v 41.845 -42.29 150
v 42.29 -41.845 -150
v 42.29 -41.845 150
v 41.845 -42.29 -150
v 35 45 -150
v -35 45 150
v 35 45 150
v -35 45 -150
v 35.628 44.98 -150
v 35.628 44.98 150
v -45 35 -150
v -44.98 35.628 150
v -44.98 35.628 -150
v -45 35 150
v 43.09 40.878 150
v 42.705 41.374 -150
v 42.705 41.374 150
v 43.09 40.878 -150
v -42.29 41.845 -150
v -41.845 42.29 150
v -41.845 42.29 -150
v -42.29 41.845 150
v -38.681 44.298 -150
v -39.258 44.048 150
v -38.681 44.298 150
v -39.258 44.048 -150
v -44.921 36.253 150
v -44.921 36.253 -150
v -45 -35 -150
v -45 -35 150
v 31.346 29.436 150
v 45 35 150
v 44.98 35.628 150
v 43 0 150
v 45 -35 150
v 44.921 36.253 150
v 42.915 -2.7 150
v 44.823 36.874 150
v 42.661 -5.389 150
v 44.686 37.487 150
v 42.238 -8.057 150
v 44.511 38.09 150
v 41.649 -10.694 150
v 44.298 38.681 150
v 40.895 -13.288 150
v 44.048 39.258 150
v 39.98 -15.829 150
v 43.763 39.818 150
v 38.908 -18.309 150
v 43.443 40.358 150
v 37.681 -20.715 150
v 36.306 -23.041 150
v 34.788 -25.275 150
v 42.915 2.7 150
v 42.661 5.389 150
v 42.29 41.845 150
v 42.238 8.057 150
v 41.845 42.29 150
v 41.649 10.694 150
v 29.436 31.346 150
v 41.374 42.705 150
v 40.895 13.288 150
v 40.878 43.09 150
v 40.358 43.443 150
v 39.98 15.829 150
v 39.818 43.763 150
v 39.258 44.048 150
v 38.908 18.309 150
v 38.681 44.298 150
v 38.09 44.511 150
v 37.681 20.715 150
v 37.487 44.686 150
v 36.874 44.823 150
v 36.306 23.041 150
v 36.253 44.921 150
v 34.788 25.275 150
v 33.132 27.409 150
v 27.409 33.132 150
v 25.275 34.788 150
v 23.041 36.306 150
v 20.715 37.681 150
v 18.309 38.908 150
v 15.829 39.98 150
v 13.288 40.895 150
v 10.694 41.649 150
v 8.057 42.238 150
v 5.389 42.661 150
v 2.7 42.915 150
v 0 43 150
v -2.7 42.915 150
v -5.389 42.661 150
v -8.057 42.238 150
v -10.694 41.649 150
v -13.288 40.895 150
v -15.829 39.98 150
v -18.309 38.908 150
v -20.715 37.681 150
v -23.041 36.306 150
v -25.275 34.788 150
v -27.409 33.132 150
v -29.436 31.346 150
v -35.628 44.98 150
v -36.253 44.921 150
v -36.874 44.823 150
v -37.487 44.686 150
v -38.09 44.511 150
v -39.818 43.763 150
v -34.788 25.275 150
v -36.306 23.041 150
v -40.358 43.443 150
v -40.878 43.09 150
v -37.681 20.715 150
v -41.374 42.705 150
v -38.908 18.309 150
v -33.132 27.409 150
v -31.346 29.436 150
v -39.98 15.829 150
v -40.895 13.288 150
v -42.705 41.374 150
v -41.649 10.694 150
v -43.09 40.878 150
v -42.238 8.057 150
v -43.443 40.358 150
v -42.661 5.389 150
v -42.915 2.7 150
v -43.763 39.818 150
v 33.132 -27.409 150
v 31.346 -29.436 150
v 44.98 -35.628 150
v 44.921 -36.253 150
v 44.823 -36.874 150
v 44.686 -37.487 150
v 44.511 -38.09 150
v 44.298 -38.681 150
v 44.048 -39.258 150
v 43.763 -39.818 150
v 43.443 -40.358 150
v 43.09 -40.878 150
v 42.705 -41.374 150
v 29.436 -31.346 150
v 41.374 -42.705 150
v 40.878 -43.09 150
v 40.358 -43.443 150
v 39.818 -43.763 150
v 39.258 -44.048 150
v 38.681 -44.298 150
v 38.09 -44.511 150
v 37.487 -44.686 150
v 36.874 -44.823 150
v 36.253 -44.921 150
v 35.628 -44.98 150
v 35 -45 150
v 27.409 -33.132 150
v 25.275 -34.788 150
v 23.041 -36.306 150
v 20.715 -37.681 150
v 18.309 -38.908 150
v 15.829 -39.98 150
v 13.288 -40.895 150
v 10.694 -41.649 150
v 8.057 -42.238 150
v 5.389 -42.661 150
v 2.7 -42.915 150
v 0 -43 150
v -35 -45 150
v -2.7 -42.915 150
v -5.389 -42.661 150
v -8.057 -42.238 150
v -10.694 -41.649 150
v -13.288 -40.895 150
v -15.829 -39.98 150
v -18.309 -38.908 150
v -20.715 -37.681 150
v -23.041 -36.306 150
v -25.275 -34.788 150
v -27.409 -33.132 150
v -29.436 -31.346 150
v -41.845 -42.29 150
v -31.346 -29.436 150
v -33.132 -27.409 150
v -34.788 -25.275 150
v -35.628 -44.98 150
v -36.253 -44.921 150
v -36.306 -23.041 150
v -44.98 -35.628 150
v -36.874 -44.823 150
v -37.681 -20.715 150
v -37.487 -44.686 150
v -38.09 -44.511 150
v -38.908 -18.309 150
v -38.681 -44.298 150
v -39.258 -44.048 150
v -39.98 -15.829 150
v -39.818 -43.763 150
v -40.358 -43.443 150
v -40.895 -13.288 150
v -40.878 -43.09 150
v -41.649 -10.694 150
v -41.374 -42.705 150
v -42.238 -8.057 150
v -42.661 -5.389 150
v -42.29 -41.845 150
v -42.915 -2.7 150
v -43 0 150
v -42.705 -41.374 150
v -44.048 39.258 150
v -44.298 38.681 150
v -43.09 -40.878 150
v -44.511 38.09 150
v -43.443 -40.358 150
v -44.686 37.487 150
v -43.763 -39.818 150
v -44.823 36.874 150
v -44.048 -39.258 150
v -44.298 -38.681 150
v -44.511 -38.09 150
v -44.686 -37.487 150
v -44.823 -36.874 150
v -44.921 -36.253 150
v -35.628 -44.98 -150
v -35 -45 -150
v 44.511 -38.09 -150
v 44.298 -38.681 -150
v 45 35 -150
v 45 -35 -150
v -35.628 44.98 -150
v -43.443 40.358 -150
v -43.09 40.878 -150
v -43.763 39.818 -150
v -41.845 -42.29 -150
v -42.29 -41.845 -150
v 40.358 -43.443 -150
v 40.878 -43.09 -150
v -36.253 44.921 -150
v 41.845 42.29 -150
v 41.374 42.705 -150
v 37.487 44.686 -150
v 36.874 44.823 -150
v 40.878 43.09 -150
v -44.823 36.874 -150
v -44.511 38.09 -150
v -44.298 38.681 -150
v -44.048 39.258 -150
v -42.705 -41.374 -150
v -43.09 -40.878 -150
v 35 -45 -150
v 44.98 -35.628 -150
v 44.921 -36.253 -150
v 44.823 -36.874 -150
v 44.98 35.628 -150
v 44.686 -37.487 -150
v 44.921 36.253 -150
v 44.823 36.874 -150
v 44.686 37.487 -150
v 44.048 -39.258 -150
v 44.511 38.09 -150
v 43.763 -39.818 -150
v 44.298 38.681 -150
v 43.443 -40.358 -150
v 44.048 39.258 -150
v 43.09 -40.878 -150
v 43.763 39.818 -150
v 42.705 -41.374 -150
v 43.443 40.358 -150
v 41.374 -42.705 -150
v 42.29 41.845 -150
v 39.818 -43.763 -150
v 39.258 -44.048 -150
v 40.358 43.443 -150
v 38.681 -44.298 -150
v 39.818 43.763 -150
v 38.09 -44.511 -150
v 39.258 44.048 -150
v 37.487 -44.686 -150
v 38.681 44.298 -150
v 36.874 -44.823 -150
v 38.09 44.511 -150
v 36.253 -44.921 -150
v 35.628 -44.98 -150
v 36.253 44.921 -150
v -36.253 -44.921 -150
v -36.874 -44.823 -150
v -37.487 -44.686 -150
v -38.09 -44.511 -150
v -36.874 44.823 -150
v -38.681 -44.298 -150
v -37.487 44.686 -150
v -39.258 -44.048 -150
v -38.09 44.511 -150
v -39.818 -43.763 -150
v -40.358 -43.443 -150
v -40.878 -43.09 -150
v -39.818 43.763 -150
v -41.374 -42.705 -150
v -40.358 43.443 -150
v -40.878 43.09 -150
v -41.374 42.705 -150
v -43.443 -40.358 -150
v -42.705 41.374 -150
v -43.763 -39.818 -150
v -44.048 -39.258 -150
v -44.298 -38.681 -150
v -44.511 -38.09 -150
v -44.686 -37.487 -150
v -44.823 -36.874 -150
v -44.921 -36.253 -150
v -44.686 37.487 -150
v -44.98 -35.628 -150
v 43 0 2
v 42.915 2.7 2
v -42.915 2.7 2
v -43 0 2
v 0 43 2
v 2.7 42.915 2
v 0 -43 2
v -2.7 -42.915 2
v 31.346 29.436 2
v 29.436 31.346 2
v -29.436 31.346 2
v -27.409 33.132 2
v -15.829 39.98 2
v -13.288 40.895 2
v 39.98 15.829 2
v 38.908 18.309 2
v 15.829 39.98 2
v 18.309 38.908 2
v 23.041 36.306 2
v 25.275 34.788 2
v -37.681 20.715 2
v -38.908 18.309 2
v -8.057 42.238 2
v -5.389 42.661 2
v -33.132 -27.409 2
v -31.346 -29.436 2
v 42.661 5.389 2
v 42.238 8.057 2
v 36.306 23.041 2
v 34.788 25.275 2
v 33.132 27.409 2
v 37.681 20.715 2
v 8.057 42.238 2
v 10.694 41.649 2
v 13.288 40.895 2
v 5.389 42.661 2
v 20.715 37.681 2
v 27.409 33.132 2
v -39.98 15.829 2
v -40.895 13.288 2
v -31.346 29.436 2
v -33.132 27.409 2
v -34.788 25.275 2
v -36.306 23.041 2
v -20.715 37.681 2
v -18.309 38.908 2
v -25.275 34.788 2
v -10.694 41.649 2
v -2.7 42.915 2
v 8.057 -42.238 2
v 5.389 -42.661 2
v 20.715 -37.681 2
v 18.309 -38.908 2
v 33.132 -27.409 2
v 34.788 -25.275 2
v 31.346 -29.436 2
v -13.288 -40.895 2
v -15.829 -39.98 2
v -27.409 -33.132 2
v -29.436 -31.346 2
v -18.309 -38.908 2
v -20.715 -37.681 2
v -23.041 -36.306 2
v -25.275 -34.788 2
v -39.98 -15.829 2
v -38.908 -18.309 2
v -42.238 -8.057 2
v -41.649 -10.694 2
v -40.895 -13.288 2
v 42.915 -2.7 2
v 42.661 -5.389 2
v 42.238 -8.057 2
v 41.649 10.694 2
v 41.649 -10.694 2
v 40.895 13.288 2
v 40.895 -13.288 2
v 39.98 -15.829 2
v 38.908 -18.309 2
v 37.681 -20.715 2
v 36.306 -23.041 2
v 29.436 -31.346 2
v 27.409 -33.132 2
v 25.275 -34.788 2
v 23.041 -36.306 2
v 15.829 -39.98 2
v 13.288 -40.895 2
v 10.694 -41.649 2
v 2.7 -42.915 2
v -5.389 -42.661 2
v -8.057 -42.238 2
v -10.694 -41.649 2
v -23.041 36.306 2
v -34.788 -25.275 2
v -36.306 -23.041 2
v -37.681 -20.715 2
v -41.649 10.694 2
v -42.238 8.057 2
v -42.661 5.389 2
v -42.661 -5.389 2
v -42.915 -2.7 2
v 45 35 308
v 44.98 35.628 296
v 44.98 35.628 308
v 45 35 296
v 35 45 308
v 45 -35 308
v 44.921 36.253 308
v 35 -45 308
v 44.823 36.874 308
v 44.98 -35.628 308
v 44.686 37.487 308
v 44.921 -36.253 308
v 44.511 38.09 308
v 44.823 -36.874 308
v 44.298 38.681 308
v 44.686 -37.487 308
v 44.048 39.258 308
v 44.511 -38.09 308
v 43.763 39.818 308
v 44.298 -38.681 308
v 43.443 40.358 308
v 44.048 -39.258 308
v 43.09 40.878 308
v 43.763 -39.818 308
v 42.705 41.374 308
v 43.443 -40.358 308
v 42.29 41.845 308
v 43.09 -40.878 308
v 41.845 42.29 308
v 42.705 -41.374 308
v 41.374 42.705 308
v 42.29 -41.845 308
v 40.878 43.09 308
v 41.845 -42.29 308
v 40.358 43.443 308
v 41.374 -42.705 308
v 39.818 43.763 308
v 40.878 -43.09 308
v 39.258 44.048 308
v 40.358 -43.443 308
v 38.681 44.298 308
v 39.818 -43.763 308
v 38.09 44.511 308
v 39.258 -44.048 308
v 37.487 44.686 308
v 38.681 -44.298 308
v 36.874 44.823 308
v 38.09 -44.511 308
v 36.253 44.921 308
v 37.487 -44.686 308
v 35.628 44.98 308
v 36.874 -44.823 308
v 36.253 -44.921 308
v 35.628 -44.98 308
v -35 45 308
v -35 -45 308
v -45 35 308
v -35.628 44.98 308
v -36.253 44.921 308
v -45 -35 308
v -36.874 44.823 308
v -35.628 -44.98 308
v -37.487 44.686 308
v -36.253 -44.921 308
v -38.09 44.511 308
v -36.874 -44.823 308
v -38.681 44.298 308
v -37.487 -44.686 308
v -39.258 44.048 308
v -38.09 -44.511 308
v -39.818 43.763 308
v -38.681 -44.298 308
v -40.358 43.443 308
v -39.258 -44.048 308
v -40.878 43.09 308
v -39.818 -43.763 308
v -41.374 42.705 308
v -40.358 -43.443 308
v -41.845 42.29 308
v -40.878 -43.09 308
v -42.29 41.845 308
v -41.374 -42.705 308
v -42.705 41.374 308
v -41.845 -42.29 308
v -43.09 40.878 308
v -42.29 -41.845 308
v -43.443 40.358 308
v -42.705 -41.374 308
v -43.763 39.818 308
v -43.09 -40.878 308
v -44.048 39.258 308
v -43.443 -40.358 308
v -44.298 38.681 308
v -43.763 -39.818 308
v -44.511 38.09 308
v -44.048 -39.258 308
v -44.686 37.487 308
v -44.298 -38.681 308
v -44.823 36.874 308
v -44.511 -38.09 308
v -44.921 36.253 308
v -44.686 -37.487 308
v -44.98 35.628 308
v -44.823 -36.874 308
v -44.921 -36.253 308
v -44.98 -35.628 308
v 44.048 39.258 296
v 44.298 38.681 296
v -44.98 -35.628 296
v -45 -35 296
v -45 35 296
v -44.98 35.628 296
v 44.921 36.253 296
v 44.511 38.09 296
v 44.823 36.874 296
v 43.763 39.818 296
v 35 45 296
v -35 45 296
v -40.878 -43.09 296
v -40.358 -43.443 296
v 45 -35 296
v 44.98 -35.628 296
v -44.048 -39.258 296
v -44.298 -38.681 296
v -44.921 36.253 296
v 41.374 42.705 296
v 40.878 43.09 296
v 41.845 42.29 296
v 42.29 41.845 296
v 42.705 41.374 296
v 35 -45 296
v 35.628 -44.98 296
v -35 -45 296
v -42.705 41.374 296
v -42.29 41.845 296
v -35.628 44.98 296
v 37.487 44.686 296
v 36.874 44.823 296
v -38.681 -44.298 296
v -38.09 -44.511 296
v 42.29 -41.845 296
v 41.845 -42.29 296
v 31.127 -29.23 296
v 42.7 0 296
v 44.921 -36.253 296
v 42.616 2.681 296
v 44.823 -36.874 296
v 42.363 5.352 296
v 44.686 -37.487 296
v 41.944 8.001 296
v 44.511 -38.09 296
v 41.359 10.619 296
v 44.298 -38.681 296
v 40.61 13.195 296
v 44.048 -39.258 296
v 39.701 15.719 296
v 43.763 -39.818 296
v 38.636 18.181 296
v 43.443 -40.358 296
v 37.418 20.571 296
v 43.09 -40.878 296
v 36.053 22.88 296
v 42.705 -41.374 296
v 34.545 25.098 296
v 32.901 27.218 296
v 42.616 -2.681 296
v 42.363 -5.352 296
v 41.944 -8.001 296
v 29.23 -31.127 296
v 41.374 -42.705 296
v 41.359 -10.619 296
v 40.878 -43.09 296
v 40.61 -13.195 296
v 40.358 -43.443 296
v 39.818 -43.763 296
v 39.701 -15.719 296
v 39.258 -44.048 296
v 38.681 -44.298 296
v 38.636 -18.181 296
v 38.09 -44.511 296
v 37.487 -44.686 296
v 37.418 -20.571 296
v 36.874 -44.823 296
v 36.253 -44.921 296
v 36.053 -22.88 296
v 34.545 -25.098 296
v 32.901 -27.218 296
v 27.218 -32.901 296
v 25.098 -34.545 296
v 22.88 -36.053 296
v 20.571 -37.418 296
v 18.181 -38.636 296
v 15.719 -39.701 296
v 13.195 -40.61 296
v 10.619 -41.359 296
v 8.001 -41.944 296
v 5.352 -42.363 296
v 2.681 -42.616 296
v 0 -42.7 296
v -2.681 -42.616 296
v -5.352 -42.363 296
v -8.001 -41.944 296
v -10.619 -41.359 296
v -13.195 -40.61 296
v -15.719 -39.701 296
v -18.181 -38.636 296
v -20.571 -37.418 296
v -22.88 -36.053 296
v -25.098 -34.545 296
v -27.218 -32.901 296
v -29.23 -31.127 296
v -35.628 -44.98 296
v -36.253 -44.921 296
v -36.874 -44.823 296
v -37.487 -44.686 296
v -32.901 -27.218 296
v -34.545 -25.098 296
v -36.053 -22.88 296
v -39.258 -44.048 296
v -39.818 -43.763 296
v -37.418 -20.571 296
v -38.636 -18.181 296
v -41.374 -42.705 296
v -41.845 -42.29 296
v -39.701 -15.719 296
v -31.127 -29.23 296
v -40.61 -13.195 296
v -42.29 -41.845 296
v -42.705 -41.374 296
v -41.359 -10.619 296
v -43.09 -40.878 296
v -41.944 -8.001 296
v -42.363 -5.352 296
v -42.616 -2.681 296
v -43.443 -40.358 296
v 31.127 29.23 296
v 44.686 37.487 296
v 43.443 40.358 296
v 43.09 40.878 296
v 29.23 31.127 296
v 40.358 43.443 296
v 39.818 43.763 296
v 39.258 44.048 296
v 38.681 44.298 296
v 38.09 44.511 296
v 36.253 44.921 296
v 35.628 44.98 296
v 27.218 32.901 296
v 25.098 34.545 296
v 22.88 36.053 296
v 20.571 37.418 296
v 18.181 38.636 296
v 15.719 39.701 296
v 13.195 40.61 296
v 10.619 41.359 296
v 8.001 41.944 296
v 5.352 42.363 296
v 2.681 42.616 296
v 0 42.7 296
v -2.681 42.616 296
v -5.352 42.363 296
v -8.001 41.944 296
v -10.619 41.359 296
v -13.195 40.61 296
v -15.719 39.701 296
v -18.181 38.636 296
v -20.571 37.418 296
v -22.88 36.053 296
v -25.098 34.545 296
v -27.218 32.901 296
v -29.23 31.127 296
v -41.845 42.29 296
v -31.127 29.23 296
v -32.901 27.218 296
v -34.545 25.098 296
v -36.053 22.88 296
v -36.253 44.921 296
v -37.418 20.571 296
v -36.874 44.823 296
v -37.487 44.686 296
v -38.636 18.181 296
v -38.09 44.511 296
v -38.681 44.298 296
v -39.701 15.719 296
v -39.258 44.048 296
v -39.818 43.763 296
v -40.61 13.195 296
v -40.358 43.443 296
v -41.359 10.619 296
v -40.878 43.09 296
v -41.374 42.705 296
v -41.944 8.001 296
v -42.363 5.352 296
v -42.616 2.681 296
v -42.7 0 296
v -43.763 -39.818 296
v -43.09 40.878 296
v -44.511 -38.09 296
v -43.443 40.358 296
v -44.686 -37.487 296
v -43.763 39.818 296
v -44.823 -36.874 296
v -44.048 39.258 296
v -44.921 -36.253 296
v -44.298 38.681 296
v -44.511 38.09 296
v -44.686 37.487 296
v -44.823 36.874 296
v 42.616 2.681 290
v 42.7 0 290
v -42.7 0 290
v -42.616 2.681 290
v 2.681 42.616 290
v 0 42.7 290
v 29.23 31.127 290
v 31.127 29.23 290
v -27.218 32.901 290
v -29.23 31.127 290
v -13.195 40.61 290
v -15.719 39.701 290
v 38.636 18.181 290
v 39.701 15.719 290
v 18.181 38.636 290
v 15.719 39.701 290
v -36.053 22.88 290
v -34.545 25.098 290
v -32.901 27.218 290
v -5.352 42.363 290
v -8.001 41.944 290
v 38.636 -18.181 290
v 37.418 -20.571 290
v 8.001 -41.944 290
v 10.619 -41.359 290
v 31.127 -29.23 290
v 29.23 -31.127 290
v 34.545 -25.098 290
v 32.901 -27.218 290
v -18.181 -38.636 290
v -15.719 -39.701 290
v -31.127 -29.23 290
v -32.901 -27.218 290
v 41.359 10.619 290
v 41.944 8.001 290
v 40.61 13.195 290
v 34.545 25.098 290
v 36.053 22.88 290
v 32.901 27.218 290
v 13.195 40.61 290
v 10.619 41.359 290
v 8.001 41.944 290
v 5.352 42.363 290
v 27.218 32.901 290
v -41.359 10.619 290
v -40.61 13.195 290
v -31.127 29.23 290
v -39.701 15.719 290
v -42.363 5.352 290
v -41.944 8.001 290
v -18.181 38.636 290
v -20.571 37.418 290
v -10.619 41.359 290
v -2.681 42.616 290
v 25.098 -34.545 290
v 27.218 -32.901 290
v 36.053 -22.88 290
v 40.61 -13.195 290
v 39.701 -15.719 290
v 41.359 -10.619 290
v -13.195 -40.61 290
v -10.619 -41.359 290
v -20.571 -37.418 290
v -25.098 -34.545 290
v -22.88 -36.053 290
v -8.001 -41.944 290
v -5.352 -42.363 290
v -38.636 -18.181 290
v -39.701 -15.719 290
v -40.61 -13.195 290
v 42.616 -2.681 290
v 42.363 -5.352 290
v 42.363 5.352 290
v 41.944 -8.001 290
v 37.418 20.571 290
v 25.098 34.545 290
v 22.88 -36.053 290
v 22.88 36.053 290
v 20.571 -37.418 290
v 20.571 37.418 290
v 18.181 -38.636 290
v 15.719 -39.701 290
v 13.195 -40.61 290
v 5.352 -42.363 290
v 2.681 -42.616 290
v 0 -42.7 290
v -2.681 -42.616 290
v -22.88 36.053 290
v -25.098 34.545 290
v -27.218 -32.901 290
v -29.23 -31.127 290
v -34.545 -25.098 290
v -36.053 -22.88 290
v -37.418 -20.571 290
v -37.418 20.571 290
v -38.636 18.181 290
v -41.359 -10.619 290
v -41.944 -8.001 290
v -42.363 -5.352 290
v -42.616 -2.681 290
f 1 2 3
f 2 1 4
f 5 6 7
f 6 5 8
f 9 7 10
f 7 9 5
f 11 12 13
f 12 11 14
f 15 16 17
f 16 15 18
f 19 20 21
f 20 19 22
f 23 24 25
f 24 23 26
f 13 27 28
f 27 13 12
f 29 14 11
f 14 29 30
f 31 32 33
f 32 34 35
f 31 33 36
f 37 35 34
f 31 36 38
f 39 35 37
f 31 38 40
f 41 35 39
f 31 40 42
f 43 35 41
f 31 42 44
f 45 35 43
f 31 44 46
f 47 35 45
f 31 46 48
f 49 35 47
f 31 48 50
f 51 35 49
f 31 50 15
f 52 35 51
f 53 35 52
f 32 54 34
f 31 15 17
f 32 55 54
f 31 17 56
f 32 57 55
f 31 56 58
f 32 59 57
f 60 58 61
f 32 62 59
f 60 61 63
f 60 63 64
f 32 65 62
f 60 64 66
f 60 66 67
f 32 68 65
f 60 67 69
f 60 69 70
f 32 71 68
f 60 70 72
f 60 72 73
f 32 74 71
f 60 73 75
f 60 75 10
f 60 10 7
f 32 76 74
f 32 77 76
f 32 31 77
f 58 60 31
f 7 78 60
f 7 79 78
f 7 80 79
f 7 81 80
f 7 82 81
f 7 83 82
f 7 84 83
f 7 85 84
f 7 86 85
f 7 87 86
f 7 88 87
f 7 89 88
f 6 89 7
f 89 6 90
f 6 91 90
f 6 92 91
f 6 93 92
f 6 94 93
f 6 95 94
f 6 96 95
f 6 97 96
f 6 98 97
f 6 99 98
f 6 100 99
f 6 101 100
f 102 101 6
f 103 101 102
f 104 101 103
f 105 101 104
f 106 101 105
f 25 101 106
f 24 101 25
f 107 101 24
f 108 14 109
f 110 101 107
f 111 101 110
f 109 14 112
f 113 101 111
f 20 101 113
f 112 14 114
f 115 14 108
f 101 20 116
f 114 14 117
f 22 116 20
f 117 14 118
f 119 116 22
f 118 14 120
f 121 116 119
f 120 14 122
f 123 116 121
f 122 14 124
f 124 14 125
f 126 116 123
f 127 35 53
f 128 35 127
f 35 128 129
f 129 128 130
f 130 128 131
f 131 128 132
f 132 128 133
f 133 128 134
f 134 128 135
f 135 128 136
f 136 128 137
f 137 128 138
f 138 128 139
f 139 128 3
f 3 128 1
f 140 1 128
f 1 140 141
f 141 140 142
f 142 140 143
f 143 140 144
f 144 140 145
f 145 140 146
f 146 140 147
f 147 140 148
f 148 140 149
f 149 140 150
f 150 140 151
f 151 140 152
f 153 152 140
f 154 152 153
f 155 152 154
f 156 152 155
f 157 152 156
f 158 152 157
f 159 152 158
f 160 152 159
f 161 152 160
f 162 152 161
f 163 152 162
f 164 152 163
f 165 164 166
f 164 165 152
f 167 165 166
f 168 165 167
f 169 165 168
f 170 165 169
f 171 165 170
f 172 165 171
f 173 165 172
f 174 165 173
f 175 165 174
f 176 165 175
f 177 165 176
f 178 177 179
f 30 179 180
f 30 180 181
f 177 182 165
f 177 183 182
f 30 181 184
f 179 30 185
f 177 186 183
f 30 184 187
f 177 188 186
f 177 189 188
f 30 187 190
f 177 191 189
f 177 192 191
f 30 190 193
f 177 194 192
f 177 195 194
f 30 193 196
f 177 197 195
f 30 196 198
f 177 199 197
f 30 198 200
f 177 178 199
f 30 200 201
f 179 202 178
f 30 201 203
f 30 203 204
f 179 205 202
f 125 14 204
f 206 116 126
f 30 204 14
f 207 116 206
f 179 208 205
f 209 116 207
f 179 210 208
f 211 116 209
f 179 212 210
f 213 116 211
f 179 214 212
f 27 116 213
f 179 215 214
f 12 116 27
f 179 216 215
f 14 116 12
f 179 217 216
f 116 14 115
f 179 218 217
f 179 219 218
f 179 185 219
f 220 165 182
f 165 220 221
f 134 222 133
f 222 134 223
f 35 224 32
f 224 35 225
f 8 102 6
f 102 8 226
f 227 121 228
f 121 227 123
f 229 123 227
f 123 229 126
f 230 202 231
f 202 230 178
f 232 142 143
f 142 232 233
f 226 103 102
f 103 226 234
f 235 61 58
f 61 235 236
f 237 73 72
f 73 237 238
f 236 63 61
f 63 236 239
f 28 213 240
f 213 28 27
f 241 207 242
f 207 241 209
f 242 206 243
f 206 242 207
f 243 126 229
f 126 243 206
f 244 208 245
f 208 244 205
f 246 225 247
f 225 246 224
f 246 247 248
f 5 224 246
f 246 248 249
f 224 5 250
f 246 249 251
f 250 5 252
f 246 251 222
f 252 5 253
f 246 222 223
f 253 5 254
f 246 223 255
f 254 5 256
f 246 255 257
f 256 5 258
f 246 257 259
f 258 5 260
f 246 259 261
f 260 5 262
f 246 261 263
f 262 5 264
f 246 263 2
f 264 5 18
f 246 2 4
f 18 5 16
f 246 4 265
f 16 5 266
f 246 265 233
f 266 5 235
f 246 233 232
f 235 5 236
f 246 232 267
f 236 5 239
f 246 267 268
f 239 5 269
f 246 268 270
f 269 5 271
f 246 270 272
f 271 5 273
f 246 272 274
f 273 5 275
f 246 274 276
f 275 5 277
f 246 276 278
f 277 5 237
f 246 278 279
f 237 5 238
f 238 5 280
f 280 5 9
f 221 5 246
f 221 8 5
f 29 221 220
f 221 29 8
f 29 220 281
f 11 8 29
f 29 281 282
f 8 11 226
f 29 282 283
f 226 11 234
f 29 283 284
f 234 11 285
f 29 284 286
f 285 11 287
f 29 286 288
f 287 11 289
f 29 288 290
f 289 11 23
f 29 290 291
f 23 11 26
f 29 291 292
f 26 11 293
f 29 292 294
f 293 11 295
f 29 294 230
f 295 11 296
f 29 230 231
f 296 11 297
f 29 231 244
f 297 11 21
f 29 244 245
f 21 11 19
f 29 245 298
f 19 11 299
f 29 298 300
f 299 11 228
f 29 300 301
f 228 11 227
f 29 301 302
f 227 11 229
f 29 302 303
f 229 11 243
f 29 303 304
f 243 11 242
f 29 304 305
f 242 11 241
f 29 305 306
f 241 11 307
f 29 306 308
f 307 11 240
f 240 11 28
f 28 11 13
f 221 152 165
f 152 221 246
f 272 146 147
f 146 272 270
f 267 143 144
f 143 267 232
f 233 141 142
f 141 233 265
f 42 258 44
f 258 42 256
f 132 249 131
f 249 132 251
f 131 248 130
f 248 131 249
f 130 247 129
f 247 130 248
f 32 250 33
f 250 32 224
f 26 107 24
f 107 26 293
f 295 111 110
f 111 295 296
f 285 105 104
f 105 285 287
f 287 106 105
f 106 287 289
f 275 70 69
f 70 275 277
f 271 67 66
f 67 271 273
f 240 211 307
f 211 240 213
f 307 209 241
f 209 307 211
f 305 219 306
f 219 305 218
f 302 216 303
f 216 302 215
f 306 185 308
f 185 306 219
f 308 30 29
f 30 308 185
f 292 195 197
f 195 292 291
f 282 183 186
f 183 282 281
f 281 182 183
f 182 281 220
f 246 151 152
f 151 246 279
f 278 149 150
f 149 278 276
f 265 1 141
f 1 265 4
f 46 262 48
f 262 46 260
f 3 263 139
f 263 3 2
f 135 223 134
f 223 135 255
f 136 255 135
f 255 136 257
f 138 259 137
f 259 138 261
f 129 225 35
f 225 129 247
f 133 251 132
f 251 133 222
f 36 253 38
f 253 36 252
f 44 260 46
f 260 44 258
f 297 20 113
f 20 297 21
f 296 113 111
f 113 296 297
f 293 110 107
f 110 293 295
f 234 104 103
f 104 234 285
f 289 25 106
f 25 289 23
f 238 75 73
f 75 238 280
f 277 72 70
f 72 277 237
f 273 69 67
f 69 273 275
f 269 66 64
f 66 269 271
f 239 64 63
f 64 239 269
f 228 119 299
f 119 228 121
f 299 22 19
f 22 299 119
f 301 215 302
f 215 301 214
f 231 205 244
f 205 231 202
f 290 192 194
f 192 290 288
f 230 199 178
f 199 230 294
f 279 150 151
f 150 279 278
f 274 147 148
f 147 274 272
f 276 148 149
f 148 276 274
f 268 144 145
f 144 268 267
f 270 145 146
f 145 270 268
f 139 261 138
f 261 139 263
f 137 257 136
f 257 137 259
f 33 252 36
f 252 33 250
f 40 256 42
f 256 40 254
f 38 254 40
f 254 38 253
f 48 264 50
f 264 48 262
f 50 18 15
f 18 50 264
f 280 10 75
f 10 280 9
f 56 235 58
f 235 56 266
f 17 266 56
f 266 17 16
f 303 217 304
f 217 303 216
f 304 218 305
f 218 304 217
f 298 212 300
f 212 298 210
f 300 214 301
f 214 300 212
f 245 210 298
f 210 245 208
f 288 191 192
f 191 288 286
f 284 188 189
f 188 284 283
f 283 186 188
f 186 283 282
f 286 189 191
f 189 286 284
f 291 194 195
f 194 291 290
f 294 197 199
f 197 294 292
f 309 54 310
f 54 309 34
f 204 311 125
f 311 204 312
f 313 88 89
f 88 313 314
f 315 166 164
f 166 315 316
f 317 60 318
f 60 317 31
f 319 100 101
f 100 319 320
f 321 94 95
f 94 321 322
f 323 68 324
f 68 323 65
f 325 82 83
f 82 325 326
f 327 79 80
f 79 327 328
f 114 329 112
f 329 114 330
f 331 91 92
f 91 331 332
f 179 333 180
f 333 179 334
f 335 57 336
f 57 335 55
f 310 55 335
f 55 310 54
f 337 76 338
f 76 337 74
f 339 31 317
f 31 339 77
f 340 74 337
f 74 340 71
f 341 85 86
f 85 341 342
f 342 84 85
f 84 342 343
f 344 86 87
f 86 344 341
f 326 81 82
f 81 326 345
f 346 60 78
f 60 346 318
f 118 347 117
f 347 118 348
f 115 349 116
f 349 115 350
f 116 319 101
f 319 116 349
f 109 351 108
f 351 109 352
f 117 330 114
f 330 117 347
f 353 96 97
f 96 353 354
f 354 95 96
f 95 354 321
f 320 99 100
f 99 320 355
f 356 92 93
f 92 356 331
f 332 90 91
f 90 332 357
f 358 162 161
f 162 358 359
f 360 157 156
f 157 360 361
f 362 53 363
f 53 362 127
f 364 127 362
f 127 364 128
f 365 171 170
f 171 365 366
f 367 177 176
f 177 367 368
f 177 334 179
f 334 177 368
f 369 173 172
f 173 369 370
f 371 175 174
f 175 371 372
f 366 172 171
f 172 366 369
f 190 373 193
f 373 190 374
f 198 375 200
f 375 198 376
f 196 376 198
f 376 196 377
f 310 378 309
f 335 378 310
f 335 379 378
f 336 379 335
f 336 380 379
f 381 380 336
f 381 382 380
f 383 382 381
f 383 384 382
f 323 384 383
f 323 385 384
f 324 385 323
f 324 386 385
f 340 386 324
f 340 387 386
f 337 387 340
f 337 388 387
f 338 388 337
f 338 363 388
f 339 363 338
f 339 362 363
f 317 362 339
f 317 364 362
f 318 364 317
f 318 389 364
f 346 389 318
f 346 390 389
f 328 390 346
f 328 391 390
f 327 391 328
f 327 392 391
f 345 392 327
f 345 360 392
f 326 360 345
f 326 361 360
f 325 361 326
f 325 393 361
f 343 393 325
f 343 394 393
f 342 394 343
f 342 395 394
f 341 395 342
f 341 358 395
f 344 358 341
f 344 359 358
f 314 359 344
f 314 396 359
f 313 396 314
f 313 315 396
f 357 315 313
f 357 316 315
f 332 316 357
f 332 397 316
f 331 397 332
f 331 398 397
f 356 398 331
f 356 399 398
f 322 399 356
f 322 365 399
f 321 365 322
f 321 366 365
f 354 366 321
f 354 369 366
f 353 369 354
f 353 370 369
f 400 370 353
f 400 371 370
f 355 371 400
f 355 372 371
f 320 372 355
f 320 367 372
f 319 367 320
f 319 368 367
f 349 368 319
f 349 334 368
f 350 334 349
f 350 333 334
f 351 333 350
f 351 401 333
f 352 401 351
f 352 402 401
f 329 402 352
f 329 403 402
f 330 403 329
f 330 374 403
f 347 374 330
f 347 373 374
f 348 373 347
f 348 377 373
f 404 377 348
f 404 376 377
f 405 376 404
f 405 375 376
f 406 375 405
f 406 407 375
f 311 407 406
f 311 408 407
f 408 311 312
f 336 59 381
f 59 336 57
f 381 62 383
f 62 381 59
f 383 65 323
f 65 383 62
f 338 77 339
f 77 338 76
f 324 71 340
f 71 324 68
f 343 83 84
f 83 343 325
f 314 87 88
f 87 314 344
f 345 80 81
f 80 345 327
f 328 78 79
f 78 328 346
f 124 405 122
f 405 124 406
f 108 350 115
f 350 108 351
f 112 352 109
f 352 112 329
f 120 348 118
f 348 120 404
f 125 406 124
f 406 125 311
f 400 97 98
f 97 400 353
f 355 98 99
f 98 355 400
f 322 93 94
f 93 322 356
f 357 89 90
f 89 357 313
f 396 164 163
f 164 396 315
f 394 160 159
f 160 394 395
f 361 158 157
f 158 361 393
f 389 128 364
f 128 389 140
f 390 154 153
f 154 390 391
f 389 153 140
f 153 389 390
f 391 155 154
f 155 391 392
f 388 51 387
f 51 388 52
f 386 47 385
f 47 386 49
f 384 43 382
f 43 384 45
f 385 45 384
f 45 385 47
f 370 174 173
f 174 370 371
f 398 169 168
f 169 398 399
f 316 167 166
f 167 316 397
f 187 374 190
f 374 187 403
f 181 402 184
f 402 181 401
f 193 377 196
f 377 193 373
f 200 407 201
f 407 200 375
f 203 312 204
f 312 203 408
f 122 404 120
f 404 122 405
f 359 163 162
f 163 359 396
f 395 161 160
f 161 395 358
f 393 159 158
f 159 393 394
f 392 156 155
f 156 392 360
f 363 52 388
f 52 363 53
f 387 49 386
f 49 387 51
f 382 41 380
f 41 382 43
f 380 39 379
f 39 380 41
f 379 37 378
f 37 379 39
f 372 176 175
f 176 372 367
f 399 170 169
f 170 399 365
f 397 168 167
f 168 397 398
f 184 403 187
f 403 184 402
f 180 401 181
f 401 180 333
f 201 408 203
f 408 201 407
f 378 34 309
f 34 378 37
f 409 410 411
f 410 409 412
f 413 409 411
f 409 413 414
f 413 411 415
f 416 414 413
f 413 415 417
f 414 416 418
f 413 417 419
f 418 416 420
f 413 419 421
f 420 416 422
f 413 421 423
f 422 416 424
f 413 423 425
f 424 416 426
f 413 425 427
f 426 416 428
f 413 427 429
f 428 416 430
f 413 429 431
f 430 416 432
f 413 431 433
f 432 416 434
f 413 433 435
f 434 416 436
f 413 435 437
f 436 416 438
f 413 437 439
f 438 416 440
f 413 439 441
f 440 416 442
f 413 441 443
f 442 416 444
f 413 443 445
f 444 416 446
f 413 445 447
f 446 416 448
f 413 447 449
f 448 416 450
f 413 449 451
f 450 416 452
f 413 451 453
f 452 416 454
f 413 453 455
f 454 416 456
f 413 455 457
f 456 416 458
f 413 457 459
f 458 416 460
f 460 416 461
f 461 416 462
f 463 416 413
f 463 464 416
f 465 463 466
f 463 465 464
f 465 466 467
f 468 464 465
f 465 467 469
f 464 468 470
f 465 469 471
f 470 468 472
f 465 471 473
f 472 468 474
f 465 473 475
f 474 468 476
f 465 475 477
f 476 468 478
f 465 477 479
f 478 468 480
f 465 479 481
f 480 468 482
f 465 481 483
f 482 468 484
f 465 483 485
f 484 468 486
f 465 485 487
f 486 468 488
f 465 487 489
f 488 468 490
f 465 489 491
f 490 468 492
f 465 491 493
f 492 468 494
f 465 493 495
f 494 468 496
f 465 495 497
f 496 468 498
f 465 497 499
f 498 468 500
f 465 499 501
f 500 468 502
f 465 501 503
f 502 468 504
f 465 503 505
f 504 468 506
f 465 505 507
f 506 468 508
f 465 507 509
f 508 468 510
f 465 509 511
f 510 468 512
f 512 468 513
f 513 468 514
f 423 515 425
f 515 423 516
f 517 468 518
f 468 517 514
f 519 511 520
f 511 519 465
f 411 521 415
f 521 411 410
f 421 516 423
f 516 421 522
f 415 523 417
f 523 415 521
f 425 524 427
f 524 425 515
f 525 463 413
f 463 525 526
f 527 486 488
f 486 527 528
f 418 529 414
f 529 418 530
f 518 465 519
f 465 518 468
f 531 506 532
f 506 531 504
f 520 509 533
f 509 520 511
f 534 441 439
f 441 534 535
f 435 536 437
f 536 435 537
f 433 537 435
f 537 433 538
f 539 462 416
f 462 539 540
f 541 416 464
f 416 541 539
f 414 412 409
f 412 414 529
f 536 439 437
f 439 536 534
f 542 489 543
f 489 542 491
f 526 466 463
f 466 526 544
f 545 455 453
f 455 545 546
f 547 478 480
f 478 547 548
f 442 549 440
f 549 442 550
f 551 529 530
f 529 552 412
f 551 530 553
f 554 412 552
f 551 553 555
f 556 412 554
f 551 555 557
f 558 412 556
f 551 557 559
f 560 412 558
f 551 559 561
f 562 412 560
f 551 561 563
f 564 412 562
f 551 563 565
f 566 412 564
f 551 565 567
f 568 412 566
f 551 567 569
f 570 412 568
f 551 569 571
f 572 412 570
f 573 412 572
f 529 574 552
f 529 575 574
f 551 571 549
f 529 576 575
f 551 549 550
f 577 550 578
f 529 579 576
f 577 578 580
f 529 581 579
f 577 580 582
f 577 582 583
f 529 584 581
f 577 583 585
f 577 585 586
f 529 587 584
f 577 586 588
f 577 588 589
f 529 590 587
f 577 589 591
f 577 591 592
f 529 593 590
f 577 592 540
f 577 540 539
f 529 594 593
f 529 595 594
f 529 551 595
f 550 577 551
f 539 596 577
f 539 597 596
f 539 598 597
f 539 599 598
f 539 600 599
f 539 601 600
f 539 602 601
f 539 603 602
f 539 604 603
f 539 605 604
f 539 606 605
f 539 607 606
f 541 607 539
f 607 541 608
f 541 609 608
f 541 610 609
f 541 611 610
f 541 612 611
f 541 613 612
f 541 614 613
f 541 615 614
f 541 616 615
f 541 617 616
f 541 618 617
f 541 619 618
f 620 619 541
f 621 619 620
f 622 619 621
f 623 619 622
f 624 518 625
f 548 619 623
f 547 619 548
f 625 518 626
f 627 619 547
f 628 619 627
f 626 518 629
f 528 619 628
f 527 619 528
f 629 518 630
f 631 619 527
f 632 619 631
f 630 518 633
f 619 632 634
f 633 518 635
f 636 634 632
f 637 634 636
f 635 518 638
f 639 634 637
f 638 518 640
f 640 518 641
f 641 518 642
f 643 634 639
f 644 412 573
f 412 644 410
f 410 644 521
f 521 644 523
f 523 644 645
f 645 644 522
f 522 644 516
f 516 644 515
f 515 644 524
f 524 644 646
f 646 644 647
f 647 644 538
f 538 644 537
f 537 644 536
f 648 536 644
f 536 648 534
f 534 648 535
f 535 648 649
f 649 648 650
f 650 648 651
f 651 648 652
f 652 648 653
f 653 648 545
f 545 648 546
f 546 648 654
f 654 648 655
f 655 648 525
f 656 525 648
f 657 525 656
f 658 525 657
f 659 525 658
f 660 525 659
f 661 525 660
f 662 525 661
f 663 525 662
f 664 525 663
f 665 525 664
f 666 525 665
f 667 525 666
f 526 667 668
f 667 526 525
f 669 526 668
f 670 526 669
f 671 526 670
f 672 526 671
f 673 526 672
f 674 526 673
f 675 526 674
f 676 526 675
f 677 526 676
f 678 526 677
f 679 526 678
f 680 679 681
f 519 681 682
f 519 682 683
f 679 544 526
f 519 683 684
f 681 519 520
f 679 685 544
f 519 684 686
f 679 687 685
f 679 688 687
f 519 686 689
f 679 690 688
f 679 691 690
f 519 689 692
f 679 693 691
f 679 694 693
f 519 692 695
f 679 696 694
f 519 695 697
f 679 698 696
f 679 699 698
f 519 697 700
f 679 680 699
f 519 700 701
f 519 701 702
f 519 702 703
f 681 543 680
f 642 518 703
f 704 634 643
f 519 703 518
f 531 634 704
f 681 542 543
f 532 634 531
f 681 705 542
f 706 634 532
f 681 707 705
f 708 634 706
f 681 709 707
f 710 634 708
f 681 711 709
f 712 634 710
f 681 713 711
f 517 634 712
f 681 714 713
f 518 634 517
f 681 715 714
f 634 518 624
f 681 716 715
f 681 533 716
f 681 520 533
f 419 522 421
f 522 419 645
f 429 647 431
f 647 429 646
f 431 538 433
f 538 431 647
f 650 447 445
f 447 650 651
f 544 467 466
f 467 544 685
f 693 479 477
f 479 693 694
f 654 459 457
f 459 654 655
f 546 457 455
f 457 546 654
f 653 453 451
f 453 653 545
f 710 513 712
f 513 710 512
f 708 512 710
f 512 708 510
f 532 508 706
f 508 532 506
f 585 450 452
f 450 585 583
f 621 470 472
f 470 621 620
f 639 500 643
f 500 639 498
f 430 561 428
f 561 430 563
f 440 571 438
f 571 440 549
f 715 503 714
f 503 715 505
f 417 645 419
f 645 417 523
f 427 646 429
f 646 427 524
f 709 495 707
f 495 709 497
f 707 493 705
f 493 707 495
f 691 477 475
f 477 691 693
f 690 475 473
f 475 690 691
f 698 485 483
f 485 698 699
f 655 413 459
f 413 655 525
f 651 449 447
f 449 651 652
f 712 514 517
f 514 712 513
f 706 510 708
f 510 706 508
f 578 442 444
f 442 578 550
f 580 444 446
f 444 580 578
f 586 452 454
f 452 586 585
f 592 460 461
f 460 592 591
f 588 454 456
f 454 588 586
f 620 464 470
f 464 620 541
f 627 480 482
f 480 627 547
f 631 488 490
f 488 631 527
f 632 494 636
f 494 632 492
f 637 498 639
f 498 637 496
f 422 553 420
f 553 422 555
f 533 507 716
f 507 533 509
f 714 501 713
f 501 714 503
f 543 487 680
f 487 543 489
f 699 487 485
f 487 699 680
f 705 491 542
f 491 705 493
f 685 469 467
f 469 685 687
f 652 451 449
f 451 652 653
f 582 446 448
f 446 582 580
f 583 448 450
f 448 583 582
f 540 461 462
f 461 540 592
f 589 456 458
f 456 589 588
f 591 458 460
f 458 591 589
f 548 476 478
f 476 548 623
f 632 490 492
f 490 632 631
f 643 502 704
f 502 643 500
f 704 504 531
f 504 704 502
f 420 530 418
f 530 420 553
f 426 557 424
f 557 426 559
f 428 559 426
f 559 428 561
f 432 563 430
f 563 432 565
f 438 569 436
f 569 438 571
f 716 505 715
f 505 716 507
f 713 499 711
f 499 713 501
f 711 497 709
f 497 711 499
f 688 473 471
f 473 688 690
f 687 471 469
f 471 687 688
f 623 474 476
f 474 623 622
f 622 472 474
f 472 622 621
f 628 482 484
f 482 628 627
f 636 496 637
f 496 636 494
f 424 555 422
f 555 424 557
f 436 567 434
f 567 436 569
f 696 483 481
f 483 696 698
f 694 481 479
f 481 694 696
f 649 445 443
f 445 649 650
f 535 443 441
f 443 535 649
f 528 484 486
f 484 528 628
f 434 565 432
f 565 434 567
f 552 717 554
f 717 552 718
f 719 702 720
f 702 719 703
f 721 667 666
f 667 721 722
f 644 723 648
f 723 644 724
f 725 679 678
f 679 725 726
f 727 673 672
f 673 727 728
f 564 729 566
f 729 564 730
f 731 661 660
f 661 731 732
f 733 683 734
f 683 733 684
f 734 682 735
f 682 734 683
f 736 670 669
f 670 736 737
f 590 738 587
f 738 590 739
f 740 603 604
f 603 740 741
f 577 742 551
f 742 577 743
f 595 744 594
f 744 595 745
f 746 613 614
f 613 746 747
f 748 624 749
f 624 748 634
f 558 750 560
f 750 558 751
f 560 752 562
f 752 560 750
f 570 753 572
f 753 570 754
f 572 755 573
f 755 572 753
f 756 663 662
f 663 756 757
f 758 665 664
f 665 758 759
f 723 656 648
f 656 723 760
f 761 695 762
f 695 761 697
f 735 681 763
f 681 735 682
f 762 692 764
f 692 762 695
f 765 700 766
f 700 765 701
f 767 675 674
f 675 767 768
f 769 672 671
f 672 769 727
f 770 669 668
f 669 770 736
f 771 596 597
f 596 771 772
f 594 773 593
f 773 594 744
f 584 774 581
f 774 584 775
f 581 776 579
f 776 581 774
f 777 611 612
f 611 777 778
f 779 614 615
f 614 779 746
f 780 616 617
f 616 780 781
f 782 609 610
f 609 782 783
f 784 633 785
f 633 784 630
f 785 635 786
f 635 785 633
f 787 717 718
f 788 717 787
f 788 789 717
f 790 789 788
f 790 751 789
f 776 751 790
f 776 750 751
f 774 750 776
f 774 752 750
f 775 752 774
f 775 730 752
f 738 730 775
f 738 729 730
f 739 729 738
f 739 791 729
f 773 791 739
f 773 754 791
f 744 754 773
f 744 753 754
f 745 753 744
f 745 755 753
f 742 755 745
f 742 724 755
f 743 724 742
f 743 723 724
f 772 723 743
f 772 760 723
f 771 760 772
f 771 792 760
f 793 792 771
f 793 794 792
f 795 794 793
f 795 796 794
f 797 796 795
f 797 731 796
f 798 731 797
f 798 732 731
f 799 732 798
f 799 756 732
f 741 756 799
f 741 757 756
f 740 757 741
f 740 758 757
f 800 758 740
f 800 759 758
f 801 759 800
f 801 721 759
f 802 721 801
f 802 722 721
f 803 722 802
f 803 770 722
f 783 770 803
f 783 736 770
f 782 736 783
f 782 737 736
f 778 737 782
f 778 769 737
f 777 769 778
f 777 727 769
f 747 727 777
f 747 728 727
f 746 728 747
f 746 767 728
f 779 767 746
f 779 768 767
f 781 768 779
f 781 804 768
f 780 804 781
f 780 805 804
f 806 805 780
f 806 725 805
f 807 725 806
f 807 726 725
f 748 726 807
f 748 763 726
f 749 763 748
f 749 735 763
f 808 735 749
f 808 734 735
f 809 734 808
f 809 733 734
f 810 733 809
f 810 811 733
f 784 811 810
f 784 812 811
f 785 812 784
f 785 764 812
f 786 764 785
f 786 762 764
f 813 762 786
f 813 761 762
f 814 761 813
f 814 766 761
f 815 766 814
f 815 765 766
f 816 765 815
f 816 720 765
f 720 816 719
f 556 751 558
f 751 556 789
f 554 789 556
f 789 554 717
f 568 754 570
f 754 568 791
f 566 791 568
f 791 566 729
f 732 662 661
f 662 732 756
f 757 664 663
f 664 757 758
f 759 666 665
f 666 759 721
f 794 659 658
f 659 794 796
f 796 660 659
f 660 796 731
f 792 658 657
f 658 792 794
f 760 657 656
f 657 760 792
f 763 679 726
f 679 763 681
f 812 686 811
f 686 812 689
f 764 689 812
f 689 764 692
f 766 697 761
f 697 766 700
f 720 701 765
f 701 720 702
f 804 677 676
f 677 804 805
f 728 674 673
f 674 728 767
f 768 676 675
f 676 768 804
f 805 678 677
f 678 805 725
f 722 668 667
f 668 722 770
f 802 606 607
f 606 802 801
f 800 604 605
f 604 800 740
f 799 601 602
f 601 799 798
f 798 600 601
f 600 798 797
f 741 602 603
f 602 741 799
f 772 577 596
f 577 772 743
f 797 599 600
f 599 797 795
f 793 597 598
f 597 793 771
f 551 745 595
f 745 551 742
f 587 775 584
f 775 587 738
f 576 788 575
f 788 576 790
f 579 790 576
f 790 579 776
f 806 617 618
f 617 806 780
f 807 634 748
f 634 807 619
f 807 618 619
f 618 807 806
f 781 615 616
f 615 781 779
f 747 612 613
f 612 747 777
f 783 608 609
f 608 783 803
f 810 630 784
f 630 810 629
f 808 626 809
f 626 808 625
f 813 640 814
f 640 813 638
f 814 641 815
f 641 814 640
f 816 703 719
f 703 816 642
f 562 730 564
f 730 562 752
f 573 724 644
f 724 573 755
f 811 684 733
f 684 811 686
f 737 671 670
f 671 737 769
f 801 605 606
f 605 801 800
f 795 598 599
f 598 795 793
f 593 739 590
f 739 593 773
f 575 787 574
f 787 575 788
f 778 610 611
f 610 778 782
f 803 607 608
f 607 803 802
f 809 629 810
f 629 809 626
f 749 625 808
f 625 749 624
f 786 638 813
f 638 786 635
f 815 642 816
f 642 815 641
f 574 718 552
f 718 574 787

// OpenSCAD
// Parámetros generales
// Todo esta en milimetros
size_x = 90;
size_y = 90;
size_z = 300;
corner_radius = 10;
pared_exterior = 2;

altura_tapa = 12;
ajuste_tapa = 0.3;
$fn = 100;

// Cálculo del radio del hueco y tapa
radio_hueco = (min(size_x, size_y) / 2) - pared_exterior;

// --------------------
// Módulo rectangular redondeado
module rounded_box(x, y, z, r) {
    minkowski() {
        cube([x - 2*r, y - 2*r, z - r], center = true);
        cylinder(h = r, r = r, center = true);
    }
}

// --------------------
// Cuerpo del envase
color([0.349, 0.788, 0.647])
difference() {
    // Exterior rectangular
    rounded_box(size_x, size_y, size_z, corner_radius);

    // Hueco cilíndrico más grande, más profundo
    translate([0, 0, pared_exterior])
        cylinder(h = size_z - pared_exterior * 1.5, r = radio_hueco);
}

// --------------------
// Tapa con forma exterior rectangular + reborde cilíndrico inferior
// --------------------
color([0.2, 0.6, 0.8])
translate([0, 0, size_z + 2])
difference() {
    union() {
        // Parte visible de la tapa con forma rectangular
        rounded_box(size_x, size_y, altura_tapa, corner_radius);

        // Reborde cilíndrico que encaja dentro del hueco
        translate([0, 0, -12])  // sobresale hacia abajo
            cylinder(h = 12, r = radio_hueco - ajuste_tapa);
    }

    // // Hueco de aligeramiento opcional
    // translate([0, 0, 0.5])
    //     cylinder(h = altura_tapa - 0.5, r = radio_hueco - pared_exterior);
}
